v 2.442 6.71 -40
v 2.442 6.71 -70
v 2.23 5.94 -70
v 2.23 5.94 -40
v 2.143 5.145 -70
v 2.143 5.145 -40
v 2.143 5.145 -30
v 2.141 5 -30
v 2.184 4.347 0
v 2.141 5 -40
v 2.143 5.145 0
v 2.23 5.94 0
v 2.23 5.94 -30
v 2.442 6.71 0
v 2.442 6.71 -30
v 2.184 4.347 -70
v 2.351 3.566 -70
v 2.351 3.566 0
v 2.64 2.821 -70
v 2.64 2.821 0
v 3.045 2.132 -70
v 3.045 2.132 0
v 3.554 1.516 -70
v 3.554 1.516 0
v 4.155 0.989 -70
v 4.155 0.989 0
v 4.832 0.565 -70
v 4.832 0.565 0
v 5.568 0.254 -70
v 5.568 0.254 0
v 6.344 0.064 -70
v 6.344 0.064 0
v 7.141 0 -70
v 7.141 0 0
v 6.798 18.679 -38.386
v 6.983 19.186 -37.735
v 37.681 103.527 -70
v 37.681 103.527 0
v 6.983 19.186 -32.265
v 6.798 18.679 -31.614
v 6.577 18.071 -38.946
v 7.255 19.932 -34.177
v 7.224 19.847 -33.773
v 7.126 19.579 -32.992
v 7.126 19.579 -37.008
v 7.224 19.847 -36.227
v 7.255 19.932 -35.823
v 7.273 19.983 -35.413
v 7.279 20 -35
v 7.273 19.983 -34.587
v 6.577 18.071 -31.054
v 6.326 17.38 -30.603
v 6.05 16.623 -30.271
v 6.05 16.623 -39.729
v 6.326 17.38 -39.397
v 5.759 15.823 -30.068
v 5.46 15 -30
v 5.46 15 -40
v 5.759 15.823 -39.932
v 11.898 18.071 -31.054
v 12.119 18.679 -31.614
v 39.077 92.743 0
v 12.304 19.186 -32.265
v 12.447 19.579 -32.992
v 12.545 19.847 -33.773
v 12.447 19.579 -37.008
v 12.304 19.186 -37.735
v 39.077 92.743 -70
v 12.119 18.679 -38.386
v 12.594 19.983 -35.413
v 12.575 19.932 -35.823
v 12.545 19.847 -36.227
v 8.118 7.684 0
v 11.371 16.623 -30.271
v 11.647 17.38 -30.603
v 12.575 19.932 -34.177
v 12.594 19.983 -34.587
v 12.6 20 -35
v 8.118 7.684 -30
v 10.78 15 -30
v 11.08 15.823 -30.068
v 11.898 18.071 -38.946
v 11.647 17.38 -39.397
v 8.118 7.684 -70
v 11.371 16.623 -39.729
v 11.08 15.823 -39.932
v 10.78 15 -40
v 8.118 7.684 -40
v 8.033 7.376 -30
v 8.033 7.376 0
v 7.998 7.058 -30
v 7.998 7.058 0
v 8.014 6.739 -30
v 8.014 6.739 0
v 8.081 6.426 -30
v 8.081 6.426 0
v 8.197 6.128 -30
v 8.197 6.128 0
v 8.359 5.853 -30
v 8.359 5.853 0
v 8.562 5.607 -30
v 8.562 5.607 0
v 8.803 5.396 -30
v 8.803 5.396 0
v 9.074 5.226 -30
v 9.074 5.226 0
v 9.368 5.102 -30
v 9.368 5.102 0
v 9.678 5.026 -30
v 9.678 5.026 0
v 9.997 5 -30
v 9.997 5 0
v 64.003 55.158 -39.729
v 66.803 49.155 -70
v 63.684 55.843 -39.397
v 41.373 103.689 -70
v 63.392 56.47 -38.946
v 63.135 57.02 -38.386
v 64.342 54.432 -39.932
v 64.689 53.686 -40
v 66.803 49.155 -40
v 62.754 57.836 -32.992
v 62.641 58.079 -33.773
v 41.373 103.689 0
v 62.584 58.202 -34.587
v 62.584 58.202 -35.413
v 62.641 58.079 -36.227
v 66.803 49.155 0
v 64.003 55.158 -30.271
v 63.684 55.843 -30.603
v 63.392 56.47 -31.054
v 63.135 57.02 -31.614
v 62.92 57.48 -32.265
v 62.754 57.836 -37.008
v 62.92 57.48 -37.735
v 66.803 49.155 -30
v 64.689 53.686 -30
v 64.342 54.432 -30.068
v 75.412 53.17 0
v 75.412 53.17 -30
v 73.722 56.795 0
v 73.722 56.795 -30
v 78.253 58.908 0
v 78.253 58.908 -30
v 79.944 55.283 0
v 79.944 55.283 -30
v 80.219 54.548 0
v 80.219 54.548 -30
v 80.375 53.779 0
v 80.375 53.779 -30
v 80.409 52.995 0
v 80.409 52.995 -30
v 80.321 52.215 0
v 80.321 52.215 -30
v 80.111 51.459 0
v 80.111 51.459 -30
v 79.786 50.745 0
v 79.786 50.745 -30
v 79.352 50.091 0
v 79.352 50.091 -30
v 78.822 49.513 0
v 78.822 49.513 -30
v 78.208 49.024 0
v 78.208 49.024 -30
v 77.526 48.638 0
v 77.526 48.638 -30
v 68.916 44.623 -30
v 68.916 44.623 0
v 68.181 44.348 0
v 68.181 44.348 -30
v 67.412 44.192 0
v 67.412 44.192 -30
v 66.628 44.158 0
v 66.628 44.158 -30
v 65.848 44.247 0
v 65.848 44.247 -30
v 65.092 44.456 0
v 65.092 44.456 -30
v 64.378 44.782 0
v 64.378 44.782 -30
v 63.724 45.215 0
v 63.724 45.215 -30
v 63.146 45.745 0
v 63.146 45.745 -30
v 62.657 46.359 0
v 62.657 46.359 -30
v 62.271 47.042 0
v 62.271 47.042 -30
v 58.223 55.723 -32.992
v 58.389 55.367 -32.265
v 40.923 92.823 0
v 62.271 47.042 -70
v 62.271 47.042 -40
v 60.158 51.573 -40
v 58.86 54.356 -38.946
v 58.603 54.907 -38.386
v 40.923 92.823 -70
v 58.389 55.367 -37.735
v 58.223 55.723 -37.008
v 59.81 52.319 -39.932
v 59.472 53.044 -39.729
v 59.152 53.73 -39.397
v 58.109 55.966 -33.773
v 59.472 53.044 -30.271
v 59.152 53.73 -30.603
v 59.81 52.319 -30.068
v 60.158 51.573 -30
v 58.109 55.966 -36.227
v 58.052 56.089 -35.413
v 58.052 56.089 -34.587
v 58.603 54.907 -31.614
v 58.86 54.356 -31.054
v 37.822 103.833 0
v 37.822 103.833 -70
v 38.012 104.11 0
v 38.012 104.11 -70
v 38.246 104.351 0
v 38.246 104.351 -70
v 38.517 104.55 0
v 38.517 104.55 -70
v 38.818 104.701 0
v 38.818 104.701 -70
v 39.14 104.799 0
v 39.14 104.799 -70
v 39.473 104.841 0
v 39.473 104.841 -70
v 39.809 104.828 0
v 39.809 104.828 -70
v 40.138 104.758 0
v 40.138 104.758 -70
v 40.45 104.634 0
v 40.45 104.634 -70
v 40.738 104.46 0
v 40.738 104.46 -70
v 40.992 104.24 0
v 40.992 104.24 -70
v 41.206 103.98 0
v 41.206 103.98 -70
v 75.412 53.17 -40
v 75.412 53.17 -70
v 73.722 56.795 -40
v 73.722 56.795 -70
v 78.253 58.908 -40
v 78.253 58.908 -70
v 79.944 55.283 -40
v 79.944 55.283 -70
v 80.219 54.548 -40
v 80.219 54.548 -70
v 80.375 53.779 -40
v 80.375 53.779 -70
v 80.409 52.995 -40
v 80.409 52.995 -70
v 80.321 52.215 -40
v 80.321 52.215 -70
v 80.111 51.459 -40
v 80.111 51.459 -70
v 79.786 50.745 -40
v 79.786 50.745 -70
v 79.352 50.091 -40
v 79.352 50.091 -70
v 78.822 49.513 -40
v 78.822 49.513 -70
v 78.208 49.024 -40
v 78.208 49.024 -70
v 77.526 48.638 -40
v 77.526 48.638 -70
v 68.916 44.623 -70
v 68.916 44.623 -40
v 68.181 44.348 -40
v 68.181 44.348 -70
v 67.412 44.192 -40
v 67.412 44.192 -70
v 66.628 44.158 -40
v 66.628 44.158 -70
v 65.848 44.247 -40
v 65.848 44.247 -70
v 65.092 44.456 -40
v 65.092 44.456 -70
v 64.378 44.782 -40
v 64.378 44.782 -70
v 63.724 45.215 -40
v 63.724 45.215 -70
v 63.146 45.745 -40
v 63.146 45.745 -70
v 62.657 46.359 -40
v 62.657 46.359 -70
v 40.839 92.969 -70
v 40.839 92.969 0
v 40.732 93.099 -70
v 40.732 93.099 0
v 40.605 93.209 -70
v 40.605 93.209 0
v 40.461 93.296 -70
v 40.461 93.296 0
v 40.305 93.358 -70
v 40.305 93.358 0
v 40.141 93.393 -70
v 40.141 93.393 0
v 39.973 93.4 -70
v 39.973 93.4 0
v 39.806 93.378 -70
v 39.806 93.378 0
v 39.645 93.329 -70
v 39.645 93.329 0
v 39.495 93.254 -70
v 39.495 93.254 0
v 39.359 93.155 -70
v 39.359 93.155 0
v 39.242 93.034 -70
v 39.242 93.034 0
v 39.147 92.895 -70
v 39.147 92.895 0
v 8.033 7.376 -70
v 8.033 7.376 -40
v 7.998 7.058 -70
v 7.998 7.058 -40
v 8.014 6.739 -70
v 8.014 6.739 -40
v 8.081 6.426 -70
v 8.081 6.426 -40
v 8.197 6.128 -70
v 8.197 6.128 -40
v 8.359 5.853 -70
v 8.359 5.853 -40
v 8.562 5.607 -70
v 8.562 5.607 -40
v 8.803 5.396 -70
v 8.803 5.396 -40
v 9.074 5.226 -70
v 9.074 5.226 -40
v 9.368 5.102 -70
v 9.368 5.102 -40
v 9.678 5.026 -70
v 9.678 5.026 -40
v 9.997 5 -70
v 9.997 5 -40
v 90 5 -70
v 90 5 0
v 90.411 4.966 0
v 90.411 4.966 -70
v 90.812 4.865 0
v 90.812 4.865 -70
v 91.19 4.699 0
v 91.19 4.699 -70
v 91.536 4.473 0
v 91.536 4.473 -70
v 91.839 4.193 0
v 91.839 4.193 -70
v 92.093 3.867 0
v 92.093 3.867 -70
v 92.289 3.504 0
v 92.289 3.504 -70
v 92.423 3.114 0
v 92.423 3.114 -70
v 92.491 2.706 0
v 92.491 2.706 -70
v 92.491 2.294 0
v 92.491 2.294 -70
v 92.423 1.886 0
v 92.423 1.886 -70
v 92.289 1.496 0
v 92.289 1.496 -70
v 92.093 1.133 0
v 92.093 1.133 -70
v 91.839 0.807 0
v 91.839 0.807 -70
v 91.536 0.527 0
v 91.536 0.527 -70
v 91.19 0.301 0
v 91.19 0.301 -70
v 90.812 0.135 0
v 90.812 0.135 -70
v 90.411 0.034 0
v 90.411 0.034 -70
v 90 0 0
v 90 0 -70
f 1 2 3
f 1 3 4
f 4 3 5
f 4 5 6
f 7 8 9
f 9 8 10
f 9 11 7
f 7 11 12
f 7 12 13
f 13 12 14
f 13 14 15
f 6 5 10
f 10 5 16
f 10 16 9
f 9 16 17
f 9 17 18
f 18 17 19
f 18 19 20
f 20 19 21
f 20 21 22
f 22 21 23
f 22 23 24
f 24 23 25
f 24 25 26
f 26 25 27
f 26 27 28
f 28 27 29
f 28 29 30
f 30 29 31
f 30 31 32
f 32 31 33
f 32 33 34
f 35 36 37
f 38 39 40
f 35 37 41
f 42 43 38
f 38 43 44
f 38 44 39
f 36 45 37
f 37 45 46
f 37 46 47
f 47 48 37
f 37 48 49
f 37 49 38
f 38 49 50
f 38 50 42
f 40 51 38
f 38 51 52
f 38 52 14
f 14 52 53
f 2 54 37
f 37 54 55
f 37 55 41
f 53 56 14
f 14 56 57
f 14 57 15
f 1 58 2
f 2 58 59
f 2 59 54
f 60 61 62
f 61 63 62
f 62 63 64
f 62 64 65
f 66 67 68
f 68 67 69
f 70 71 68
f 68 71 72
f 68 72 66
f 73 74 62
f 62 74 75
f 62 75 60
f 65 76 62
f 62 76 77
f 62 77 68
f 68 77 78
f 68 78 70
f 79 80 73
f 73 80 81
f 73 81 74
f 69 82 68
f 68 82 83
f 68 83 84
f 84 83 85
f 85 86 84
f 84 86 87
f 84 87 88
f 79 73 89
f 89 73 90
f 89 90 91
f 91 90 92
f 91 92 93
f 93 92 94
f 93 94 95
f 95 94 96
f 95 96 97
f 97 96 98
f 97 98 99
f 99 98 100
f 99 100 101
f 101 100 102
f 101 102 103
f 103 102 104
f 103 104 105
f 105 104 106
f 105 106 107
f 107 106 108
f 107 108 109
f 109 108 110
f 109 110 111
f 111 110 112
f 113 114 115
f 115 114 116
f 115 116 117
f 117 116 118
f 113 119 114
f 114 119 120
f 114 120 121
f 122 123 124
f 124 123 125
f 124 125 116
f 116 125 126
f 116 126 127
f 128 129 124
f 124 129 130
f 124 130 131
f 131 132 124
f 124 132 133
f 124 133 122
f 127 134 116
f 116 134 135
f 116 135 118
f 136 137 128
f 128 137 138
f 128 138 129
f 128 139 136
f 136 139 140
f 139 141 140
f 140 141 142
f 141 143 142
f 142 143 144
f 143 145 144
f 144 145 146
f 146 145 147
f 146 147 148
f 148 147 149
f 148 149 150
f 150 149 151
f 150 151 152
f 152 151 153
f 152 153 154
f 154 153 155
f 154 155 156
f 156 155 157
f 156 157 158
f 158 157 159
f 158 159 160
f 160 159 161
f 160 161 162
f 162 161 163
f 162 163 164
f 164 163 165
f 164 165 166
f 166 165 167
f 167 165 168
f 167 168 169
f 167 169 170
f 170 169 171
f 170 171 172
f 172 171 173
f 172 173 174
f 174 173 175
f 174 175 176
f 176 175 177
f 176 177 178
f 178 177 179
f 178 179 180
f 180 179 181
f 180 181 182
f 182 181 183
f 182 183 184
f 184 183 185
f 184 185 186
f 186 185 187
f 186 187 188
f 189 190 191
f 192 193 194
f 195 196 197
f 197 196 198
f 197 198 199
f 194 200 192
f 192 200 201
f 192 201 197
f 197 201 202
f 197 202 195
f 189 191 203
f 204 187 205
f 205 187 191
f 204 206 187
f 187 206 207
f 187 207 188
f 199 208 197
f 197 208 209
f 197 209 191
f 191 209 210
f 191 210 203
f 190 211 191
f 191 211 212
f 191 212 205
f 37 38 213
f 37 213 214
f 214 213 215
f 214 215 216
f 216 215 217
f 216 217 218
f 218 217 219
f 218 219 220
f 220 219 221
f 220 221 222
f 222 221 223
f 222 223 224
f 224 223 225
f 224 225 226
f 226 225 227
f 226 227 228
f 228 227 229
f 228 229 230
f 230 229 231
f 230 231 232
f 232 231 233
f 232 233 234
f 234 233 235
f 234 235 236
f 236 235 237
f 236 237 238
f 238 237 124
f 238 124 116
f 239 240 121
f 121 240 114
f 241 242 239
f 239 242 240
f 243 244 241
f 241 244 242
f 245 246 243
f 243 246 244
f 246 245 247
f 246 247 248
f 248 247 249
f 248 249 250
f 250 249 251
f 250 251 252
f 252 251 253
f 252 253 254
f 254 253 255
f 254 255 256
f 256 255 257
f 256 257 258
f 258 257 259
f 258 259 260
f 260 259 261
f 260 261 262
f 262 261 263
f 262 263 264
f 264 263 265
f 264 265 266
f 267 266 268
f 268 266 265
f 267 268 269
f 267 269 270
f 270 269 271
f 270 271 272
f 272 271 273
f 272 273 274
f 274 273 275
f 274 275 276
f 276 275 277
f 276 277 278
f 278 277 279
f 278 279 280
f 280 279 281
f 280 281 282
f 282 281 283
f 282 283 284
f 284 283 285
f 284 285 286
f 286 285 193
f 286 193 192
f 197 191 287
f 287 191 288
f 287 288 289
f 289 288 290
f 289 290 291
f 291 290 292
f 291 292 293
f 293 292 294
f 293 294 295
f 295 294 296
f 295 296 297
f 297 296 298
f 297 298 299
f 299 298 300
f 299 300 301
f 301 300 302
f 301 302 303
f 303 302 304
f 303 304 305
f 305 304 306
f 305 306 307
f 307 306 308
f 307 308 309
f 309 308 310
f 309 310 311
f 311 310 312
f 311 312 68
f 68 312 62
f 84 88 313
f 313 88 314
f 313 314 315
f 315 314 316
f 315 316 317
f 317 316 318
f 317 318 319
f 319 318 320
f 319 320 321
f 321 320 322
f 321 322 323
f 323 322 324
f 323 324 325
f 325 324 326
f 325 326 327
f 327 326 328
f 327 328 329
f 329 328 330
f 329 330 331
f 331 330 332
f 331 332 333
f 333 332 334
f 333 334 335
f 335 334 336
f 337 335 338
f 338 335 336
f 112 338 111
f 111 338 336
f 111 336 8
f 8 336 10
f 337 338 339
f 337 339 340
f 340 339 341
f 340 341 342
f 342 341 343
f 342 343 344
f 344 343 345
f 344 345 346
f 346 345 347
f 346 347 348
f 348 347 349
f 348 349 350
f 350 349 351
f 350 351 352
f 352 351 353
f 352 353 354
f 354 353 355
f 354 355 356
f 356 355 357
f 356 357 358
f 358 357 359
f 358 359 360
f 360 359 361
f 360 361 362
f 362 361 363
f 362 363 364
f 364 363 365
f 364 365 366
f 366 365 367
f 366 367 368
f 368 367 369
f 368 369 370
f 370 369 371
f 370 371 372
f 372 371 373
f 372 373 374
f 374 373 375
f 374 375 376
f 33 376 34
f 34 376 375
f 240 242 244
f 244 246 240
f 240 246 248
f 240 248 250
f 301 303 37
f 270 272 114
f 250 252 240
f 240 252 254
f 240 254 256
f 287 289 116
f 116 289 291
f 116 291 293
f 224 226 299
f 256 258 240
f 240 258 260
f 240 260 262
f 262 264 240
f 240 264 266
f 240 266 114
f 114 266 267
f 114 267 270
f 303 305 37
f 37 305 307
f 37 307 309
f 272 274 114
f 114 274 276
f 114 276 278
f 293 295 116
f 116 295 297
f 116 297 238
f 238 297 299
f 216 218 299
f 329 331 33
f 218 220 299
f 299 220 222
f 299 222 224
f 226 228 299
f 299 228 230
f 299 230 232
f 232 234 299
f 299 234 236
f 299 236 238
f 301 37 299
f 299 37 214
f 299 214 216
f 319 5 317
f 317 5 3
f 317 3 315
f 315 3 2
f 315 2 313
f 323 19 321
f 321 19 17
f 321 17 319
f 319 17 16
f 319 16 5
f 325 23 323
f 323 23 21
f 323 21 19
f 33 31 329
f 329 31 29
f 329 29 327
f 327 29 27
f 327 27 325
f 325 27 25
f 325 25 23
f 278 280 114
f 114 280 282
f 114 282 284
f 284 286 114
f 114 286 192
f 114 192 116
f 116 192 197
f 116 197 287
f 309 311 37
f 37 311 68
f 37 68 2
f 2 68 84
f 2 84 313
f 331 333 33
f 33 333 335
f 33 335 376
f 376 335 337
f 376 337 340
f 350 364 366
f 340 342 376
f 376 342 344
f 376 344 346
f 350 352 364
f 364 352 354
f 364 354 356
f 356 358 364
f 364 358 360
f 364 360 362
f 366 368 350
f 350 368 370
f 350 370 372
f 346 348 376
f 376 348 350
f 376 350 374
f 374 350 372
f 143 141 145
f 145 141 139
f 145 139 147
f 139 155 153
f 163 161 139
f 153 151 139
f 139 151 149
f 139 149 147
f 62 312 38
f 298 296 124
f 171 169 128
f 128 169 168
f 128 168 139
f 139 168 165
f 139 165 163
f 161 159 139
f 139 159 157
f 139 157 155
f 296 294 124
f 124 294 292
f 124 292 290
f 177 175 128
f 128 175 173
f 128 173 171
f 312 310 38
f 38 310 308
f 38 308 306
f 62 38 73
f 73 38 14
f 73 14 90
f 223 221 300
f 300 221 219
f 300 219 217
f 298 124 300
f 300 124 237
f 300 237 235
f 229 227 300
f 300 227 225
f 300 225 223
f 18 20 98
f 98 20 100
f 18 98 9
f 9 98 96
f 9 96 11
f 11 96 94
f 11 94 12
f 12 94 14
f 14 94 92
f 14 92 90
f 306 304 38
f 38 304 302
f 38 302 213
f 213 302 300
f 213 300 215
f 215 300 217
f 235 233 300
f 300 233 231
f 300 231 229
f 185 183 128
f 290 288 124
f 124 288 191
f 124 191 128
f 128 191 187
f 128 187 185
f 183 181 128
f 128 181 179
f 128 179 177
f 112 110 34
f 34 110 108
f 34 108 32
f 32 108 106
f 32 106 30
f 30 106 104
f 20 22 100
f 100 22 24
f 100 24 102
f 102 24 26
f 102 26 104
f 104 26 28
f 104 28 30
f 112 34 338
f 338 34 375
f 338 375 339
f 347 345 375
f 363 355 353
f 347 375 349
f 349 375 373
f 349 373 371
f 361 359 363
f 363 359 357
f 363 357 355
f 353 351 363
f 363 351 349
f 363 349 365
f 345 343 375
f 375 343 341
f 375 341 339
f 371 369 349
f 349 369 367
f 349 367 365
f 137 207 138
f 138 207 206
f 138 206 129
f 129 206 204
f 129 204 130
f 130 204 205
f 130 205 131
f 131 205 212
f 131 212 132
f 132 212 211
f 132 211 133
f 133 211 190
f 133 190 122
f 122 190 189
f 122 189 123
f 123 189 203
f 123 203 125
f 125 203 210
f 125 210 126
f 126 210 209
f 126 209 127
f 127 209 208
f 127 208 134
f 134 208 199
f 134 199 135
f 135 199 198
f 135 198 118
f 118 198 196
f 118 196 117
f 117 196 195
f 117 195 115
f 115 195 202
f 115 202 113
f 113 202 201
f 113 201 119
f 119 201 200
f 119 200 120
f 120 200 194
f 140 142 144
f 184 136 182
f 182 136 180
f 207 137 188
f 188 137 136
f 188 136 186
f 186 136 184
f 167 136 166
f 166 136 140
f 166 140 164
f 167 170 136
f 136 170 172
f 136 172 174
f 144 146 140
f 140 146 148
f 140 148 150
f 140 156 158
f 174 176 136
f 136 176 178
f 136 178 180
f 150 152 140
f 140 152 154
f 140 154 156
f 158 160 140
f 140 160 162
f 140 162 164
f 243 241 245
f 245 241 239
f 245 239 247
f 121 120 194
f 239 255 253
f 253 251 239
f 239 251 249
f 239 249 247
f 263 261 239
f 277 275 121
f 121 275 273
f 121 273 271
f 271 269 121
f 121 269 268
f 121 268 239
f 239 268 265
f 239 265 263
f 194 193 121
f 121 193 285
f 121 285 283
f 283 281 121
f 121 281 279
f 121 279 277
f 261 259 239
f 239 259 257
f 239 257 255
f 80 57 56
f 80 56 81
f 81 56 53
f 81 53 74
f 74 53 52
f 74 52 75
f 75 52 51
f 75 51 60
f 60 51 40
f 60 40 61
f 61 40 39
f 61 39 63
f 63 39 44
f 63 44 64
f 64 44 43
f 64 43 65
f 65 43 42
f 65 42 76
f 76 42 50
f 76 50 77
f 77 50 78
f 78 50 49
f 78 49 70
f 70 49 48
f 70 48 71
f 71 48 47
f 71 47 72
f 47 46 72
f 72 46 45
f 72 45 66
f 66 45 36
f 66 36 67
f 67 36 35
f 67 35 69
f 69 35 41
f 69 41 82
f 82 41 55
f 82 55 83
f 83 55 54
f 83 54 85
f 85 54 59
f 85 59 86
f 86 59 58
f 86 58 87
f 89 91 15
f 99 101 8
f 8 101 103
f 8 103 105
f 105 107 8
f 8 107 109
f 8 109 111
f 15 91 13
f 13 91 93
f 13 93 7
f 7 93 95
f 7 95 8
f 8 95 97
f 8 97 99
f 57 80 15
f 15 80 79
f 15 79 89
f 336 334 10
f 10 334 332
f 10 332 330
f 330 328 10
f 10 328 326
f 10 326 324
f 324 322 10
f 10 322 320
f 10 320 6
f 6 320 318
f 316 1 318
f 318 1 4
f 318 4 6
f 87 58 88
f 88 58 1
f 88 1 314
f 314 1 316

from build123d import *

# Parameters (mm, degrees)
BOSS_EXTRUDE1_DEPTH     = 70
CUT_EXTRUDE2_DEPTH      = 40
CUT_EXTRUDE2_DEPTH_BACK = 40
CUT_EXTRUDE4_DEPTH      = 20


with BuildPart() as part:
    # Sketch1 → Boss-Extrude1 (new body)
    with BuildSketch(Plane.XY):
        with BuildLine():
            ThreePointArc((7.140740034, 0), (3.044979812, 2.132117818), (2.44227693, 6.710100717))
            Line((2.44227693, 6.710100717), (37.680897145, 103.527414051))
            ThreePointArc((37.680897145, 103.527414051), (39.473043612, 104.841470208), (41.372897961, 103.688610288))
            Line((41.372897961, 103.688610288), (66.802503496, 49.154645233))
            Line((66.802503496, 49.154645233), (75.412427472, 53.16951872))
            Line((75.412427472, 53.16951872), (73.721954425, 56.794749868))
            Line((73.721954425, 56.794749868), (78.253493361, 58.907841176))
            Line((78.253493361, 58.907841176), (79.943966408, 55.282610028))
            ThreePointArc((79.943966408, 55.282610028), (80.110890576, 51.459418003), (77.525518781, 48.637979784))
            Line((77.525518781, 48.637979784), (68.915594804, 44.623106298))
            ThreePointArc((68.915594804, 44.623106298), (65.092402779, 44.456182129), (62.27096456, 47.041553924))
            Line((62.27096456, 47.041553924), (40.922521982, 92.823436775))
            ThreePointArc((40.922521982, 92.823436775), (39.972594808, 93.399866735), (39.076521575, 92.742838656))
            Line((39.076521575, 92.742838656), (8.117650806, 7.684040287))
            ThreePointArc((8.117650806, 7.684040287), (8.358731959, 5.852847127), (9.997036047, 5))
            Line((9.997036047, 5), (90, 5))
            ThreePointArc((90, 5), (92.5, 2.5), (90, 0))
            Line((90, 0), (7.140740034, 0))
        make_face()
    extrude(amount=-BOSS_EXTRUDE1_DEPTH)

    # Sketch2 → Cut-Extrude2 (cut, two sides: drawn at the far end of the back side and taken through both)
    with BuildSketch(Plane(origin=(73.698483936, 34.366167454, 0), x_dir=(0, 0, -1), z_dir=(0.9063077870366539, 0.422618261740691, 0)).offset(-CUT_EXTRUDE2_DEPTH_BACK)):
        with BuildLine():
            Line((40, 16.317279836), (40, 21.317279836))
            ThreePointArc((40, 21.317279836), (35, 26.317279836), (30, 21.317279836))
            Line((30, 21.317279836), (30, 16.317279836))
            Line((30, 16.317279836), (30, 11.317279836))
            Line((30, 11.317279836), (40, 11.317279836))
            Line((40, 11.317279836), (40, 16.317279836))
        make_face()
    extrude(amount=CUT_EXTRUDE2_DEPTH + CUT_EXTRUDE2_DEPTH_BACK, mode=Mode.SUBTRACT)

    # Sketch5 → Cut-Extrude4 (cut)
    with BuildSketch(Plane(origin=(0, 0, 0), x_dir=(0, 0, -1), z_dir=(1, 0, 0))):
        with BuildLine():
            Line((40, 10), (40, 15))
            ThreePointArc((40, 15), (35, 20), (30, 15))
            Line((30, 15), (30, 10))
            Line((30, 10), (30, 5))
            Line((30, 5), (40, 5))
            Line((40, 5), (40, 10))
        make_face()
    extrude(amount=CUT_EXTRUDE4_DEPTH, mode=Mode.SUBTRACT)


solid = part.part
